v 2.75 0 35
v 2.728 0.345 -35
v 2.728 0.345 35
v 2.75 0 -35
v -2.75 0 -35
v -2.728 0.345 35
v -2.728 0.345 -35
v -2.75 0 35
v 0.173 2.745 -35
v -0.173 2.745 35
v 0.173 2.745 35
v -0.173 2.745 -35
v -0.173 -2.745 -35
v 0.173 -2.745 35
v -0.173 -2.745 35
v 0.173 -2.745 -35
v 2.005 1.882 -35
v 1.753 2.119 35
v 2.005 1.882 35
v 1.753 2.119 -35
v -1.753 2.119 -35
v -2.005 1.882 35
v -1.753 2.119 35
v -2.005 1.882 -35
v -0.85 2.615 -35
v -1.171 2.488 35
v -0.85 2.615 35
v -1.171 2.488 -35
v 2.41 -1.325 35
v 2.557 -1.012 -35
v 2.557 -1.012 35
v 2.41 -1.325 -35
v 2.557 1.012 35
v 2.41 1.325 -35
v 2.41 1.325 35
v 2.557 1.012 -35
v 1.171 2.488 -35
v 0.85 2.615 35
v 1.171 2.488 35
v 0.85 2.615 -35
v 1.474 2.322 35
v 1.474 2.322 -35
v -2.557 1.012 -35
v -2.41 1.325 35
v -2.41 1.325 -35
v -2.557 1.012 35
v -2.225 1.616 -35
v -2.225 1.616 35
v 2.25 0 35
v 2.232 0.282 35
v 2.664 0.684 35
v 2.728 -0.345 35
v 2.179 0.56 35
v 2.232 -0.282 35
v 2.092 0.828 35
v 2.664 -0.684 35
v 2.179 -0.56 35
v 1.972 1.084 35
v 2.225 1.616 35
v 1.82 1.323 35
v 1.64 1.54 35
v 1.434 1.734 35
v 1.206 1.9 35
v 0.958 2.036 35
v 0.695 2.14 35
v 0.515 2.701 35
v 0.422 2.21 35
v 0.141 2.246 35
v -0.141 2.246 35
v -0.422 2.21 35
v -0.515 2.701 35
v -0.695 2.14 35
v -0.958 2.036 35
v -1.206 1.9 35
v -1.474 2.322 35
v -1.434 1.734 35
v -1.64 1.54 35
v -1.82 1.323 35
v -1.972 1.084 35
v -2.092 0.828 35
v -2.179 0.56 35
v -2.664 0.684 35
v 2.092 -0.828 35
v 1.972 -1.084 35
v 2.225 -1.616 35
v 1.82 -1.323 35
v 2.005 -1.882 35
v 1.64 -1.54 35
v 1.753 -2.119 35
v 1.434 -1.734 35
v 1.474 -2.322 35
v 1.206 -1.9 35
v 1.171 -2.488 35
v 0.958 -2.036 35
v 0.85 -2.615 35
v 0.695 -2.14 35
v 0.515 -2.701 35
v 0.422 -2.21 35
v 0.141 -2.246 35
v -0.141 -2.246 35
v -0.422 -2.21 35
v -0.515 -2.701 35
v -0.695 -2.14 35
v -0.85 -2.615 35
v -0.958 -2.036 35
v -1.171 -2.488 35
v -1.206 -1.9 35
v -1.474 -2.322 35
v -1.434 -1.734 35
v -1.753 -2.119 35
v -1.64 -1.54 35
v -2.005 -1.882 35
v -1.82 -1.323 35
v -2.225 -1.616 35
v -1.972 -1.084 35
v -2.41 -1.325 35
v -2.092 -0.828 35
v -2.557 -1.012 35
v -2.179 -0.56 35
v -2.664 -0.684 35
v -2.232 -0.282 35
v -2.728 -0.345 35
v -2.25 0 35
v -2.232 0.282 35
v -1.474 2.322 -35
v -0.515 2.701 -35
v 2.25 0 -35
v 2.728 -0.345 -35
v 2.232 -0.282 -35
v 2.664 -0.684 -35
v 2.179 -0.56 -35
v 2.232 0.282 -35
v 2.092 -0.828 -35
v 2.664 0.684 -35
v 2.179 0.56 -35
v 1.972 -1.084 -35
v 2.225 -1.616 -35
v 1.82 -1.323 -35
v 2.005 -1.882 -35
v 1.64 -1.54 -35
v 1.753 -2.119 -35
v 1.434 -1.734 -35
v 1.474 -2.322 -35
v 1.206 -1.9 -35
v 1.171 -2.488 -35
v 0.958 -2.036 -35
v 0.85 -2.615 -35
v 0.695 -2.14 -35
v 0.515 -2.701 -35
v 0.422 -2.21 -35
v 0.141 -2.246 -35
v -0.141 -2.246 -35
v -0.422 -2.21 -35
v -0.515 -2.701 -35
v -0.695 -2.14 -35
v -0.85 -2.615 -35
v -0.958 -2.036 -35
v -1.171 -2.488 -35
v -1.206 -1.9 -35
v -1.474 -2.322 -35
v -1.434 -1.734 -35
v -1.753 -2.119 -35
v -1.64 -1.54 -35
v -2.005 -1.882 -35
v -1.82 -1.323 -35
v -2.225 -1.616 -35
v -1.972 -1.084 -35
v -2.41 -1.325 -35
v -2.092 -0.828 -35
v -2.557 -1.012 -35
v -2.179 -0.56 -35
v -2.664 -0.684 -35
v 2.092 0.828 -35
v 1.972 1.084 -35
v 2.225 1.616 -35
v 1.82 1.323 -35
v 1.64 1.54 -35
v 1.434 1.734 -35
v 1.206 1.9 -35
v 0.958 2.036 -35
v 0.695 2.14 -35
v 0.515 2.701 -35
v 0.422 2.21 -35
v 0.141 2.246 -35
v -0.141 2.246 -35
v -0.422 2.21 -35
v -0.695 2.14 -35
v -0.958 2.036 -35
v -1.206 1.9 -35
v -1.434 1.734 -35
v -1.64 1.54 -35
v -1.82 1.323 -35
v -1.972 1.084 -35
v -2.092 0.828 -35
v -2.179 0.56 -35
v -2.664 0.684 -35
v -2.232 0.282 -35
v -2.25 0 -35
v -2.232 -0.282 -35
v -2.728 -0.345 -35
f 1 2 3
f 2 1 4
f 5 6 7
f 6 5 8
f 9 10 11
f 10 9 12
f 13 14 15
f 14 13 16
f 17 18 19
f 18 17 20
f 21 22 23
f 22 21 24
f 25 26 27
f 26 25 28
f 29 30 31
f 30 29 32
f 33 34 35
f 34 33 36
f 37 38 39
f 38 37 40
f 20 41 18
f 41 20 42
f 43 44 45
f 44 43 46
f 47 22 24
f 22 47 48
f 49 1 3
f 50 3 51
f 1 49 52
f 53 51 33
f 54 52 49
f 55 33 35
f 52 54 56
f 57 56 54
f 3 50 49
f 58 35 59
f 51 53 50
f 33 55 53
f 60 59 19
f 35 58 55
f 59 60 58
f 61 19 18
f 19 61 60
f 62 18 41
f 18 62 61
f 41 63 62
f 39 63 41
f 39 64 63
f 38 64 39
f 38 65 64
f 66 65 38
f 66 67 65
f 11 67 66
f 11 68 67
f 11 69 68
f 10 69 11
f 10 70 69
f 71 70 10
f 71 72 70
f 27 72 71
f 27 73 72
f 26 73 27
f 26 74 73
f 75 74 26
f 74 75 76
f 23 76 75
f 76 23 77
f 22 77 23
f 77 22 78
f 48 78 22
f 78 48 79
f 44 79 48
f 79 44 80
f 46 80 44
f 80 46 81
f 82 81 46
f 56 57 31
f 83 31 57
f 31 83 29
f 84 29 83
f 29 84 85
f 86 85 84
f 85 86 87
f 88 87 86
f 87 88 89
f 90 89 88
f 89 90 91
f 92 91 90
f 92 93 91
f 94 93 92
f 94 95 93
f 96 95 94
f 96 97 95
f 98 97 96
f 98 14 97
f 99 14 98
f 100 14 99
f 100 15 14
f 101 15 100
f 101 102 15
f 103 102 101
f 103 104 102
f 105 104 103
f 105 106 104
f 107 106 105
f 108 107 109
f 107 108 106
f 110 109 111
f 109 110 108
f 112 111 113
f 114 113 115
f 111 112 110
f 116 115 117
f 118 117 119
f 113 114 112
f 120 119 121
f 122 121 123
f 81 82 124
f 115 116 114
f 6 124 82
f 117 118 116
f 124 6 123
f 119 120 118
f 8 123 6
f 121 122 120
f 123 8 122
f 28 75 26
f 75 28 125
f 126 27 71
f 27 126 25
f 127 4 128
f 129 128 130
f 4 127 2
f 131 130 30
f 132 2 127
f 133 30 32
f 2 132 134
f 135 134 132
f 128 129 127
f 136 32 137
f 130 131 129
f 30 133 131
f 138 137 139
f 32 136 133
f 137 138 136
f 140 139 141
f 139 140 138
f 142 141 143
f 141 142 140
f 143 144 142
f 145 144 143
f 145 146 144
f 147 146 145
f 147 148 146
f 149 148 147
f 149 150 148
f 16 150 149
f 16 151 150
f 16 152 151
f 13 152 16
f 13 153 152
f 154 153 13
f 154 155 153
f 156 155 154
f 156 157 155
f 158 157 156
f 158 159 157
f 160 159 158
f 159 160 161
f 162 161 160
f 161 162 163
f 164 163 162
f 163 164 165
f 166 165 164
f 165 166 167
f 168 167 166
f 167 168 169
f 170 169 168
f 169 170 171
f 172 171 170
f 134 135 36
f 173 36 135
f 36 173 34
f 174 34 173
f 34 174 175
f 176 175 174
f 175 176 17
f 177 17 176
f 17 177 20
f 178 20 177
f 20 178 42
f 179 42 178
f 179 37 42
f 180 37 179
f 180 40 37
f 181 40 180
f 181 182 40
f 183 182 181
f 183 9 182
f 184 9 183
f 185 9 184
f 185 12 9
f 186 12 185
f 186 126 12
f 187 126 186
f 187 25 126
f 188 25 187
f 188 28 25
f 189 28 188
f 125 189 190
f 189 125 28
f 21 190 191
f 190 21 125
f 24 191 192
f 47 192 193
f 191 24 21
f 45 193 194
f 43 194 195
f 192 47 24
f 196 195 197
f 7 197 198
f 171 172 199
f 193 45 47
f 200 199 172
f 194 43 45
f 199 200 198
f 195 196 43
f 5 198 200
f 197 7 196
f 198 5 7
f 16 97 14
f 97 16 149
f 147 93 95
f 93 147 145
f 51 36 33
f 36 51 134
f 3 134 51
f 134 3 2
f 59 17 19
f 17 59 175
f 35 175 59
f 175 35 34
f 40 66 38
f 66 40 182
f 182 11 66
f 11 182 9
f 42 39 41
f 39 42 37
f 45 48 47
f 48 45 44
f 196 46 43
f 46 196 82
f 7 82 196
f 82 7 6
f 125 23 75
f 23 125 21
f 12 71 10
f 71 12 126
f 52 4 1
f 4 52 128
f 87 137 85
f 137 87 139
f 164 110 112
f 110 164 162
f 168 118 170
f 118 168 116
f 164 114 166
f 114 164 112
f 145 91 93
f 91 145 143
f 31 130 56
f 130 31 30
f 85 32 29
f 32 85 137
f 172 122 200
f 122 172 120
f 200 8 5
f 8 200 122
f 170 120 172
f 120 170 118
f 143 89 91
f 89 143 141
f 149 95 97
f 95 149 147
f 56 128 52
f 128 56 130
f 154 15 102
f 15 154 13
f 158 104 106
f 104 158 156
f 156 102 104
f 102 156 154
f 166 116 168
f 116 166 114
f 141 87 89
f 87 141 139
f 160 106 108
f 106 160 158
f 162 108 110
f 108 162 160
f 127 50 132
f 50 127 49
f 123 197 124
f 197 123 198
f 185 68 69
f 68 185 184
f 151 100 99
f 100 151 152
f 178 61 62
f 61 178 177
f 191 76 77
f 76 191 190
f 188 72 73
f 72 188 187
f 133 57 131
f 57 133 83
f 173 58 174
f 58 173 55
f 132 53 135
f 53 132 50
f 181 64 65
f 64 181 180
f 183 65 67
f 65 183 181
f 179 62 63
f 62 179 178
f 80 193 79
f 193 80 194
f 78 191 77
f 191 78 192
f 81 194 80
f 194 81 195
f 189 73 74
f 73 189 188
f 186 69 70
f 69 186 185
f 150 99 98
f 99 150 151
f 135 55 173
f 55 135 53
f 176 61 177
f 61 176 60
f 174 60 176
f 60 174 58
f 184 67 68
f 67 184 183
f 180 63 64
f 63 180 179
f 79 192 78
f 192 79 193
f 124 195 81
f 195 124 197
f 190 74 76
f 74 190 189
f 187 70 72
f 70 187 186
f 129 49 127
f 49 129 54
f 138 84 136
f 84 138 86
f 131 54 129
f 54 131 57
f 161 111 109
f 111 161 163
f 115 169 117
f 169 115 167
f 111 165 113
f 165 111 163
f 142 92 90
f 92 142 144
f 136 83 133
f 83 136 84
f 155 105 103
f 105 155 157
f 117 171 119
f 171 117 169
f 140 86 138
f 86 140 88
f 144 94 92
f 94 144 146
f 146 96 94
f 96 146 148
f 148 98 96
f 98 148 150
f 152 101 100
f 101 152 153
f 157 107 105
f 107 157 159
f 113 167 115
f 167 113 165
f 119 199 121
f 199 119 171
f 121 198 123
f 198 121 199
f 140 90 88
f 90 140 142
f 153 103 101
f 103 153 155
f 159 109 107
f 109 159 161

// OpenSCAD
$fn = 50;


difference() {
	union() {
		translate(v = [0, 0, -35.0000000000]) {
			cylinder(h = 70, r = 2.7500000000);
		}
	}
	union() {
		translate(v = [0, 0, -100.0000000000]) {
			cylinder(h = 200, r = 2.2500000000);
		}
	}
}
